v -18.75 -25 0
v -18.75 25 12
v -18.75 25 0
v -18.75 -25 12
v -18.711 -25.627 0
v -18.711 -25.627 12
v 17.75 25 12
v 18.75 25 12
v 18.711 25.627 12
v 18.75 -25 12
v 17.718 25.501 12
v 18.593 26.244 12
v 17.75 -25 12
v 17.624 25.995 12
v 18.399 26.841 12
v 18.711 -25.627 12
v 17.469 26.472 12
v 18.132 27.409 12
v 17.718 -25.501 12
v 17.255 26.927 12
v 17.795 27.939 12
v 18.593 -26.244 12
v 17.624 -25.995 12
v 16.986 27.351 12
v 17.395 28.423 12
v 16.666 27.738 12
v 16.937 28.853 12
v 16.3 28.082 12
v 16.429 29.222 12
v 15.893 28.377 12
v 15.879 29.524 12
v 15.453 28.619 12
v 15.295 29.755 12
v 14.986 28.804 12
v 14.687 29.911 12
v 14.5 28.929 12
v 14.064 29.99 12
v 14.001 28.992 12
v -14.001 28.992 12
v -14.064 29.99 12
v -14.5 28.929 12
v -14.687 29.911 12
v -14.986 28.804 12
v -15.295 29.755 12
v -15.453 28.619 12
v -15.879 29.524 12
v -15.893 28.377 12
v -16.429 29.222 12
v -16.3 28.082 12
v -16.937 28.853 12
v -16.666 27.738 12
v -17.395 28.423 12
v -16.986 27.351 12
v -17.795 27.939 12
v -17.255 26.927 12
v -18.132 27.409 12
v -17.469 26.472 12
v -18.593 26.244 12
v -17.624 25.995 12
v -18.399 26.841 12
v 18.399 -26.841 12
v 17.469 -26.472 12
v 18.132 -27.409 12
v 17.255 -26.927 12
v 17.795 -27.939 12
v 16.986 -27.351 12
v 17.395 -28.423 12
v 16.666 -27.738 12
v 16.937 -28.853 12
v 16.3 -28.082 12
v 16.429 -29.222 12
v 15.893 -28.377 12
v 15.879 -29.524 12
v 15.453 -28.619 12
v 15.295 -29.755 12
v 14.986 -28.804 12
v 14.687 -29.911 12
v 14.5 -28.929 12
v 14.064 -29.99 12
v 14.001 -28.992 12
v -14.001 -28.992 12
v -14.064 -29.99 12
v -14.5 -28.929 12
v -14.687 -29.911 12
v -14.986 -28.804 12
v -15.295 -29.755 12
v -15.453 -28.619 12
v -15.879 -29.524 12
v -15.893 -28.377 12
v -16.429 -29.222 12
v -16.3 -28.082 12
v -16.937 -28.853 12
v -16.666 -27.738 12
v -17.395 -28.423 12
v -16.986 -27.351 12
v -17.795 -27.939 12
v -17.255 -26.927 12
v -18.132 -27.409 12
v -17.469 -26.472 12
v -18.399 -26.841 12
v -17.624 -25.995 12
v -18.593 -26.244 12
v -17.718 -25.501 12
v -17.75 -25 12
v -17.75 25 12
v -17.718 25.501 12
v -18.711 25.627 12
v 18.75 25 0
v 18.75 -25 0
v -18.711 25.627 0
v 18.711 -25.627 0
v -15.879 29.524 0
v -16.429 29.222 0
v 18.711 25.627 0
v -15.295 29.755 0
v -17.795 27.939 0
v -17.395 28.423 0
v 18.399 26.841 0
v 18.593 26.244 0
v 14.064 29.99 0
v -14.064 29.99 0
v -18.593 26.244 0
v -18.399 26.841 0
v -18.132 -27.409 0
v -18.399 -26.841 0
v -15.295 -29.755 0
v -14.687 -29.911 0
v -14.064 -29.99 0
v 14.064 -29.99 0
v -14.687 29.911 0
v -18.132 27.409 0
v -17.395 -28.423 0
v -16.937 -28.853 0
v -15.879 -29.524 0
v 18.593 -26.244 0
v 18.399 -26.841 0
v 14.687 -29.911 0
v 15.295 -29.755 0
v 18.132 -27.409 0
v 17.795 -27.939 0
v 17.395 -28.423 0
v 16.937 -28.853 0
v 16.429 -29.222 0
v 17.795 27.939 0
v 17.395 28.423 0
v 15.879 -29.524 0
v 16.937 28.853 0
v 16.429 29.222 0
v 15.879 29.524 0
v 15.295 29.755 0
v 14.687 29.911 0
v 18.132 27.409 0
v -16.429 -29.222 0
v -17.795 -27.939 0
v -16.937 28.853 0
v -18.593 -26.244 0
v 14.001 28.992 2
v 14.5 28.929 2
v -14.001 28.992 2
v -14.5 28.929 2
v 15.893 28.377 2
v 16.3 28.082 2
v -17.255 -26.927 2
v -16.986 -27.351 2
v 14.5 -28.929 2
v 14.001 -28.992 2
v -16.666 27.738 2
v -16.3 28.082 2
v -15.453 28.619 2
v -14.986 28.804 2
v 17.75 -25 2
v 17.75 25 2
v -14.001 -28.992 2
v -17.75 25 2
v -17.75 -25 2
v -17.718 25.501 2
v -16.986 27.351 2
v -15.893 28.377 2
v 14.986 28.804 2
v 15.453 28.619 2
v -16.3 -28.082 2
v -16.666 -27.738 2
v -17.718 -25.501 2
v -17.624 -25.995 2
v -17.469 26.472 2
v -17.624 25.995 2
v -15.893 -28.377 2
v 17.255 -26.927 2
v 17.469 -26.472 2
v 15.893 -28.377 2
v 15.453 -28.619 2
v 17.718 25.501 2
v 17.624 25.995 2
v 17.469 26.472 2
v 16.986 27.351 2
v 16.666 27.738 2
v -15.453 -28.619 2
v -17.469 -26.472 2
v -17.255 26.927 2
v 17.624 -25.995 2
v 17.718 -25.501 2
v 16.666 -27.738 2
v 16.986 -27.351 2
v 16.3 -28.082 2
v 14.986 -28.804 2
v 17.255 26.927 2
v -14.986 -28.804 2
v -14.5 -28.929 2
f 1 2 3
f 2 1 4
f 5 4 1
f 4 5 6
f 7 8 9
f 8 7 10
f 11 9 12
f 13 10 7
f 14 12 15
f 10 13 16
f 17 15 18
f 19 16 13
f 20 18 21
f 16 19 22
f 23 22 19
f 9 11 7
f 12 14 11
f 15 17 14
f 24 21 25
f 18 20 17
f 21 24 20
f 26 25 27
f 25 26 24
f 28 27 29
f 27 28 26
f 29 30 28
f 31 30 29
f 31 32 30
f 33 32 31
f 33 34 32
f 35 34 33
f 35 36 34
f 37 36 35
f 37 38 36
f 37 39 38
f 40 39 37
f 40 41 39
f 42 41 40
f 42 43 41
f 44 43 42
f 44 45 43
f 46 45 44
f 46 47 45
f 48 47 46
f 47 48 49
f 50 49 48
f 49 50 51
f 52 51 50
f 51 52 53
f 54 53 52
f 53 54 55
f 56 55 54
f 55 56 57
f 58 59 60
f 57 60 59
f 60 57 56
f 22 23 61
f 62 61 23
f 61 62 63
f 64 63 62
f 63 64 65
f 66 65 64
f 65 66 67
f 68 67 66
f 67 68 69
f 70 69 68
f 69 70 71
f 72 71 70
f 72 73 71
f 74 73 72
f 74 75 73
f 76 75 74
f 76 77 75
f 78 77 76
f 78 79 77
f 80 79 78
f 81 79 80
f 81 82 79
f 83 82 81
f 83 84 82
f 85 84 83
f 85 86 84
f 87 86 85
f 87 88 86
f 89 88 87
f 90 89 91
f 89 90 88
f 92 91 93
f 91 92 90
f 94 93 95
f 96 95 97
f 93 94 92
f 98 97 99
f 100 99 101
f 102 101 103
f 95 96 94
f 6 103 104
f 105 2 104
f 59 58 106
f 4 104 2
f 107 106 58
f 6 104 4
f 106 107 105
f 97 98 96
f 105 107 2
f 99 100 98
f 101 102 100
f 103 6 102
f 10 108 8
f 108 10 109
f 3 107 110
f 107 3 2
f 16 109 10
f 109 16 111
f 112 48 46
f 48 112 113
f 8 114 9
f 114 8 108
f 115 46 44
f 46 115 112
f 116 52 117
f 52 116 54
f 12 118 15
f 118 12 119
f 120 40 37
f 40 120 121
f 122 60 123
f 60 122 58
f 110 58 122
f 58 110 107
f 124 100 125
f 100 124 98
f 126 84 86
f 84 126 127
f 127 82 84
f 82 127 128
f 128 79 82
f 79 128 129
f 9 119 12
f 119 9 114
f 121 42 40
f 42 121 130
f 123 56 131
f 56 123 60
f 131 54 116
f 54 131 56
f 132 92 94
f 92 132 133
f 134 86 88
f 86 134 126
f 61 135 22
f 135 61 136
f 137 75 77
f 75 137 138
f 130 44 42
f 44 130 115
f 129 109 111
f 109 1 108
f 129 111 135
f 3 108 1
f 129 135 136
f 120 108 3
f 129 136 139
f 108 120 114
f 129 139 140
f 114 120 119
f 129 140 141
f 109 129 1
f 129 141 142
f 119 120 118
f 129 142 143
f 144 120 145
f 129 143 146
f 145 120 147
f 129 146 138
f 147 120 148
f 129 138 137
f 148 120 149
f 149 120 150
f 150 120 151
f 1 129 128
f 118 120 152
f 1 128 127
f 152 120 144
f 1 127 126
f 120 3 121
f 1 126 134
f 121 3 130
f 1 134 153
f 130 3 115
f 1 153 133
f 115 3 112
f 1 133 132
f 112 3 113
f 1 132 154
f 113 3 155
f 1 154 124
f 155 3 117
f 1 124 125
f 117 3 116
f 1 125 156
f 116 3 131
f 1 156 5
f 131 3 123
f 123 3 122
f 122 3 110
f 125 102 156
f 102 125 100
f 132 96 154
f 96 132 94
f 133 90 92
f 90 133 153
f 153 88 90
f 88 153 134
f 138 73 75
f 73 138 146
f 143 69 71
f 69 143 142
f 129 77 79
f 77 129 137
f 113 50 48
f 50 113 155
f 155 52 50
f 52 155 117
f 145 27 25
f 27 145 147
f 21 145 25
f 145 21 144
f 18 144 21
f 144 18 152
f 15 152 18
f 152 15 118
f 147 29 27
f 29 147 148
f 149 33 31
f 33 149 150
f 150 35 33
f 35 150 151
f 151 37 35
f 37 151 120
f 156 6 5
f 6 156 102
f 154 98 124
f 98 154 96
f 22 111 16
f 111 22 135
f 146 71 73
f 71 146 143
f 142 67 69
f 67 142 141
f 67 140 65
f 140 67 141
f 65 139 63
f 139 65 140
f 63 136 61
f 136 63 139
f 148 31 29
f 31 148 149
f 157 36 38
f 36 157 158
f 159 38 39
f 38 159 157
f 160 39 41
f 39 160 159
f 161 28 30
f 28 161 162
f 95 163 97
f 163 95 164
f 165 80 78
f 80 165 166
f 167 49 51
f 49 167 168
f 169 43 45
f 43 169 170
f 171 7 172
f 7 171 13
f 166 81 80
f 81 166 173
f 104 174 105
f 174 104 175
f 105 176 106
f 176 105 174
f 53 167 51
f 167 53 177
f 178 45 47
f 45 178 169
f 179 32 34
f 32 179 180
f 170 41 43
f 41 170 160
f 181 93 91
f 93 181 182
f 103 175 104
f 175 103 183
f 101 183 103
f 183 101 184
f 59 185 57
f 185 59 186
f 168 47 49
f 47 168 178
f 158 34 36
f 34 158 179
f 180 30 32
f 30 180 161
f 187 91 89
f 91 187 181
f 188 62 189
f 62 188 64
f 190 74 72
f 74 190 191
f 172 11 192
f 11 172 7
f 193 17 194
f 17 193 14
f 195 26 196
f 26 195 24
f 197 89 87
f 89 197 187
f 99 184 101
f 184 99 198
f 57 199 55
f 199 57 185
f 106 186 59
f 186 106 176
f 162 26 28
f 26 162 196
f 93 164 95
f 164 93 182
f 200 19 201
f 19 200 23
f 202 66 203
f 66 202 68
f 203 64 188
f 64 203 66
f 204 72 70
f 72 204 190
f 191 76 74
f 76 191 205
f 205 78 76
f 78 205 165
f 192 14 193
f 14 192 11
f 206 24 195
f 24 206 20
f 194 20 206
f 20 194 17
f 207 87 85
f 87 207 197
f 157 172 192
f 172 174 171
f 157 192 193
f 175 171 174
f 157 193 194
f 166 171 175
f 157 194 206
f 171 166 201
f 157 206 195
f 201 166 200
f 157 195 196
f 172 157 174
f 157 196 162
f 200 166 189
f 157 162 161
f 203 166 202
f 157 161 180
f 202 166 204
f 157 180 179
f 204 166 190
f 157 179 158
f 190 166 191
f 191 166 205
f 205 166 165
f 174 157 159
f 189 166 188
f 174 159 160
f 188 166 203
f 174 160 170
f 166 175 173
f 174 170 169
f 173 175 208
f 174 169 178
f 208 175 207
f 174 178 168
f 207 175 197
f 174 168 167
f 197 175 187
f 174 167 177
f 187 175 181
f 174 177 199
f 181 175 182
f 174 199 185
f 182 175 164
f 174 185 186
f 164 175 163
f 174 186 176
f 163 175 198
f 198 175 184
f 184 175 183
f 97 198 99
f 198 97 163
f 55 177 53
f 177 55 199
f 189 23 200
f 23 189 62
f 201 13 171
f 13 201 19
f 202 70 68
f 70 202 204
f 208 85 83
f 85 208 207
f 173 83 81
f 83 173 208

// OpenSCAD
$fn = 50;


difference() {
	union() {
		hull() {
			translate(v = [-13.7500000000, 25.0000000000, 0]) {
				cylinder(h = 12, r = 5);
			}
			translate(v = [13.7500000000, 25.0000000000, 0]) {
				cylinder(h = 12, r = 5);
			}
			translate(v = [-13.7500000000, -25.0000000000, 0]) {
				cylinder(h = 12, r = 5);
			}
			translate(v = [13.7500000000, -25.0000000000, 0]) {
				cylinder(h = 12, r = 5);
			}
		}
	}
	union() {
		translate(v = [0, 0, 2]) {
			#hull() {
				translate(v = [-13.7500000000, 25.0000000000, 0]) {
					cylinder(h = 10, r = 4);
				}
				translate(v = [13.7500000000, 25.0000000000, 0]) {
					cylinder(h = 10, r = 4);
				}
				translate(v = [-13.7500000000, -25.0000000000, 0]) {
					cylinder(h = 10, r = 4);
				}
				translate(v = [13.7500000000, -25.0000000000, 0]) {
					cylinder(h = 10, r = 4);
				}
			}
		}
	}
}
